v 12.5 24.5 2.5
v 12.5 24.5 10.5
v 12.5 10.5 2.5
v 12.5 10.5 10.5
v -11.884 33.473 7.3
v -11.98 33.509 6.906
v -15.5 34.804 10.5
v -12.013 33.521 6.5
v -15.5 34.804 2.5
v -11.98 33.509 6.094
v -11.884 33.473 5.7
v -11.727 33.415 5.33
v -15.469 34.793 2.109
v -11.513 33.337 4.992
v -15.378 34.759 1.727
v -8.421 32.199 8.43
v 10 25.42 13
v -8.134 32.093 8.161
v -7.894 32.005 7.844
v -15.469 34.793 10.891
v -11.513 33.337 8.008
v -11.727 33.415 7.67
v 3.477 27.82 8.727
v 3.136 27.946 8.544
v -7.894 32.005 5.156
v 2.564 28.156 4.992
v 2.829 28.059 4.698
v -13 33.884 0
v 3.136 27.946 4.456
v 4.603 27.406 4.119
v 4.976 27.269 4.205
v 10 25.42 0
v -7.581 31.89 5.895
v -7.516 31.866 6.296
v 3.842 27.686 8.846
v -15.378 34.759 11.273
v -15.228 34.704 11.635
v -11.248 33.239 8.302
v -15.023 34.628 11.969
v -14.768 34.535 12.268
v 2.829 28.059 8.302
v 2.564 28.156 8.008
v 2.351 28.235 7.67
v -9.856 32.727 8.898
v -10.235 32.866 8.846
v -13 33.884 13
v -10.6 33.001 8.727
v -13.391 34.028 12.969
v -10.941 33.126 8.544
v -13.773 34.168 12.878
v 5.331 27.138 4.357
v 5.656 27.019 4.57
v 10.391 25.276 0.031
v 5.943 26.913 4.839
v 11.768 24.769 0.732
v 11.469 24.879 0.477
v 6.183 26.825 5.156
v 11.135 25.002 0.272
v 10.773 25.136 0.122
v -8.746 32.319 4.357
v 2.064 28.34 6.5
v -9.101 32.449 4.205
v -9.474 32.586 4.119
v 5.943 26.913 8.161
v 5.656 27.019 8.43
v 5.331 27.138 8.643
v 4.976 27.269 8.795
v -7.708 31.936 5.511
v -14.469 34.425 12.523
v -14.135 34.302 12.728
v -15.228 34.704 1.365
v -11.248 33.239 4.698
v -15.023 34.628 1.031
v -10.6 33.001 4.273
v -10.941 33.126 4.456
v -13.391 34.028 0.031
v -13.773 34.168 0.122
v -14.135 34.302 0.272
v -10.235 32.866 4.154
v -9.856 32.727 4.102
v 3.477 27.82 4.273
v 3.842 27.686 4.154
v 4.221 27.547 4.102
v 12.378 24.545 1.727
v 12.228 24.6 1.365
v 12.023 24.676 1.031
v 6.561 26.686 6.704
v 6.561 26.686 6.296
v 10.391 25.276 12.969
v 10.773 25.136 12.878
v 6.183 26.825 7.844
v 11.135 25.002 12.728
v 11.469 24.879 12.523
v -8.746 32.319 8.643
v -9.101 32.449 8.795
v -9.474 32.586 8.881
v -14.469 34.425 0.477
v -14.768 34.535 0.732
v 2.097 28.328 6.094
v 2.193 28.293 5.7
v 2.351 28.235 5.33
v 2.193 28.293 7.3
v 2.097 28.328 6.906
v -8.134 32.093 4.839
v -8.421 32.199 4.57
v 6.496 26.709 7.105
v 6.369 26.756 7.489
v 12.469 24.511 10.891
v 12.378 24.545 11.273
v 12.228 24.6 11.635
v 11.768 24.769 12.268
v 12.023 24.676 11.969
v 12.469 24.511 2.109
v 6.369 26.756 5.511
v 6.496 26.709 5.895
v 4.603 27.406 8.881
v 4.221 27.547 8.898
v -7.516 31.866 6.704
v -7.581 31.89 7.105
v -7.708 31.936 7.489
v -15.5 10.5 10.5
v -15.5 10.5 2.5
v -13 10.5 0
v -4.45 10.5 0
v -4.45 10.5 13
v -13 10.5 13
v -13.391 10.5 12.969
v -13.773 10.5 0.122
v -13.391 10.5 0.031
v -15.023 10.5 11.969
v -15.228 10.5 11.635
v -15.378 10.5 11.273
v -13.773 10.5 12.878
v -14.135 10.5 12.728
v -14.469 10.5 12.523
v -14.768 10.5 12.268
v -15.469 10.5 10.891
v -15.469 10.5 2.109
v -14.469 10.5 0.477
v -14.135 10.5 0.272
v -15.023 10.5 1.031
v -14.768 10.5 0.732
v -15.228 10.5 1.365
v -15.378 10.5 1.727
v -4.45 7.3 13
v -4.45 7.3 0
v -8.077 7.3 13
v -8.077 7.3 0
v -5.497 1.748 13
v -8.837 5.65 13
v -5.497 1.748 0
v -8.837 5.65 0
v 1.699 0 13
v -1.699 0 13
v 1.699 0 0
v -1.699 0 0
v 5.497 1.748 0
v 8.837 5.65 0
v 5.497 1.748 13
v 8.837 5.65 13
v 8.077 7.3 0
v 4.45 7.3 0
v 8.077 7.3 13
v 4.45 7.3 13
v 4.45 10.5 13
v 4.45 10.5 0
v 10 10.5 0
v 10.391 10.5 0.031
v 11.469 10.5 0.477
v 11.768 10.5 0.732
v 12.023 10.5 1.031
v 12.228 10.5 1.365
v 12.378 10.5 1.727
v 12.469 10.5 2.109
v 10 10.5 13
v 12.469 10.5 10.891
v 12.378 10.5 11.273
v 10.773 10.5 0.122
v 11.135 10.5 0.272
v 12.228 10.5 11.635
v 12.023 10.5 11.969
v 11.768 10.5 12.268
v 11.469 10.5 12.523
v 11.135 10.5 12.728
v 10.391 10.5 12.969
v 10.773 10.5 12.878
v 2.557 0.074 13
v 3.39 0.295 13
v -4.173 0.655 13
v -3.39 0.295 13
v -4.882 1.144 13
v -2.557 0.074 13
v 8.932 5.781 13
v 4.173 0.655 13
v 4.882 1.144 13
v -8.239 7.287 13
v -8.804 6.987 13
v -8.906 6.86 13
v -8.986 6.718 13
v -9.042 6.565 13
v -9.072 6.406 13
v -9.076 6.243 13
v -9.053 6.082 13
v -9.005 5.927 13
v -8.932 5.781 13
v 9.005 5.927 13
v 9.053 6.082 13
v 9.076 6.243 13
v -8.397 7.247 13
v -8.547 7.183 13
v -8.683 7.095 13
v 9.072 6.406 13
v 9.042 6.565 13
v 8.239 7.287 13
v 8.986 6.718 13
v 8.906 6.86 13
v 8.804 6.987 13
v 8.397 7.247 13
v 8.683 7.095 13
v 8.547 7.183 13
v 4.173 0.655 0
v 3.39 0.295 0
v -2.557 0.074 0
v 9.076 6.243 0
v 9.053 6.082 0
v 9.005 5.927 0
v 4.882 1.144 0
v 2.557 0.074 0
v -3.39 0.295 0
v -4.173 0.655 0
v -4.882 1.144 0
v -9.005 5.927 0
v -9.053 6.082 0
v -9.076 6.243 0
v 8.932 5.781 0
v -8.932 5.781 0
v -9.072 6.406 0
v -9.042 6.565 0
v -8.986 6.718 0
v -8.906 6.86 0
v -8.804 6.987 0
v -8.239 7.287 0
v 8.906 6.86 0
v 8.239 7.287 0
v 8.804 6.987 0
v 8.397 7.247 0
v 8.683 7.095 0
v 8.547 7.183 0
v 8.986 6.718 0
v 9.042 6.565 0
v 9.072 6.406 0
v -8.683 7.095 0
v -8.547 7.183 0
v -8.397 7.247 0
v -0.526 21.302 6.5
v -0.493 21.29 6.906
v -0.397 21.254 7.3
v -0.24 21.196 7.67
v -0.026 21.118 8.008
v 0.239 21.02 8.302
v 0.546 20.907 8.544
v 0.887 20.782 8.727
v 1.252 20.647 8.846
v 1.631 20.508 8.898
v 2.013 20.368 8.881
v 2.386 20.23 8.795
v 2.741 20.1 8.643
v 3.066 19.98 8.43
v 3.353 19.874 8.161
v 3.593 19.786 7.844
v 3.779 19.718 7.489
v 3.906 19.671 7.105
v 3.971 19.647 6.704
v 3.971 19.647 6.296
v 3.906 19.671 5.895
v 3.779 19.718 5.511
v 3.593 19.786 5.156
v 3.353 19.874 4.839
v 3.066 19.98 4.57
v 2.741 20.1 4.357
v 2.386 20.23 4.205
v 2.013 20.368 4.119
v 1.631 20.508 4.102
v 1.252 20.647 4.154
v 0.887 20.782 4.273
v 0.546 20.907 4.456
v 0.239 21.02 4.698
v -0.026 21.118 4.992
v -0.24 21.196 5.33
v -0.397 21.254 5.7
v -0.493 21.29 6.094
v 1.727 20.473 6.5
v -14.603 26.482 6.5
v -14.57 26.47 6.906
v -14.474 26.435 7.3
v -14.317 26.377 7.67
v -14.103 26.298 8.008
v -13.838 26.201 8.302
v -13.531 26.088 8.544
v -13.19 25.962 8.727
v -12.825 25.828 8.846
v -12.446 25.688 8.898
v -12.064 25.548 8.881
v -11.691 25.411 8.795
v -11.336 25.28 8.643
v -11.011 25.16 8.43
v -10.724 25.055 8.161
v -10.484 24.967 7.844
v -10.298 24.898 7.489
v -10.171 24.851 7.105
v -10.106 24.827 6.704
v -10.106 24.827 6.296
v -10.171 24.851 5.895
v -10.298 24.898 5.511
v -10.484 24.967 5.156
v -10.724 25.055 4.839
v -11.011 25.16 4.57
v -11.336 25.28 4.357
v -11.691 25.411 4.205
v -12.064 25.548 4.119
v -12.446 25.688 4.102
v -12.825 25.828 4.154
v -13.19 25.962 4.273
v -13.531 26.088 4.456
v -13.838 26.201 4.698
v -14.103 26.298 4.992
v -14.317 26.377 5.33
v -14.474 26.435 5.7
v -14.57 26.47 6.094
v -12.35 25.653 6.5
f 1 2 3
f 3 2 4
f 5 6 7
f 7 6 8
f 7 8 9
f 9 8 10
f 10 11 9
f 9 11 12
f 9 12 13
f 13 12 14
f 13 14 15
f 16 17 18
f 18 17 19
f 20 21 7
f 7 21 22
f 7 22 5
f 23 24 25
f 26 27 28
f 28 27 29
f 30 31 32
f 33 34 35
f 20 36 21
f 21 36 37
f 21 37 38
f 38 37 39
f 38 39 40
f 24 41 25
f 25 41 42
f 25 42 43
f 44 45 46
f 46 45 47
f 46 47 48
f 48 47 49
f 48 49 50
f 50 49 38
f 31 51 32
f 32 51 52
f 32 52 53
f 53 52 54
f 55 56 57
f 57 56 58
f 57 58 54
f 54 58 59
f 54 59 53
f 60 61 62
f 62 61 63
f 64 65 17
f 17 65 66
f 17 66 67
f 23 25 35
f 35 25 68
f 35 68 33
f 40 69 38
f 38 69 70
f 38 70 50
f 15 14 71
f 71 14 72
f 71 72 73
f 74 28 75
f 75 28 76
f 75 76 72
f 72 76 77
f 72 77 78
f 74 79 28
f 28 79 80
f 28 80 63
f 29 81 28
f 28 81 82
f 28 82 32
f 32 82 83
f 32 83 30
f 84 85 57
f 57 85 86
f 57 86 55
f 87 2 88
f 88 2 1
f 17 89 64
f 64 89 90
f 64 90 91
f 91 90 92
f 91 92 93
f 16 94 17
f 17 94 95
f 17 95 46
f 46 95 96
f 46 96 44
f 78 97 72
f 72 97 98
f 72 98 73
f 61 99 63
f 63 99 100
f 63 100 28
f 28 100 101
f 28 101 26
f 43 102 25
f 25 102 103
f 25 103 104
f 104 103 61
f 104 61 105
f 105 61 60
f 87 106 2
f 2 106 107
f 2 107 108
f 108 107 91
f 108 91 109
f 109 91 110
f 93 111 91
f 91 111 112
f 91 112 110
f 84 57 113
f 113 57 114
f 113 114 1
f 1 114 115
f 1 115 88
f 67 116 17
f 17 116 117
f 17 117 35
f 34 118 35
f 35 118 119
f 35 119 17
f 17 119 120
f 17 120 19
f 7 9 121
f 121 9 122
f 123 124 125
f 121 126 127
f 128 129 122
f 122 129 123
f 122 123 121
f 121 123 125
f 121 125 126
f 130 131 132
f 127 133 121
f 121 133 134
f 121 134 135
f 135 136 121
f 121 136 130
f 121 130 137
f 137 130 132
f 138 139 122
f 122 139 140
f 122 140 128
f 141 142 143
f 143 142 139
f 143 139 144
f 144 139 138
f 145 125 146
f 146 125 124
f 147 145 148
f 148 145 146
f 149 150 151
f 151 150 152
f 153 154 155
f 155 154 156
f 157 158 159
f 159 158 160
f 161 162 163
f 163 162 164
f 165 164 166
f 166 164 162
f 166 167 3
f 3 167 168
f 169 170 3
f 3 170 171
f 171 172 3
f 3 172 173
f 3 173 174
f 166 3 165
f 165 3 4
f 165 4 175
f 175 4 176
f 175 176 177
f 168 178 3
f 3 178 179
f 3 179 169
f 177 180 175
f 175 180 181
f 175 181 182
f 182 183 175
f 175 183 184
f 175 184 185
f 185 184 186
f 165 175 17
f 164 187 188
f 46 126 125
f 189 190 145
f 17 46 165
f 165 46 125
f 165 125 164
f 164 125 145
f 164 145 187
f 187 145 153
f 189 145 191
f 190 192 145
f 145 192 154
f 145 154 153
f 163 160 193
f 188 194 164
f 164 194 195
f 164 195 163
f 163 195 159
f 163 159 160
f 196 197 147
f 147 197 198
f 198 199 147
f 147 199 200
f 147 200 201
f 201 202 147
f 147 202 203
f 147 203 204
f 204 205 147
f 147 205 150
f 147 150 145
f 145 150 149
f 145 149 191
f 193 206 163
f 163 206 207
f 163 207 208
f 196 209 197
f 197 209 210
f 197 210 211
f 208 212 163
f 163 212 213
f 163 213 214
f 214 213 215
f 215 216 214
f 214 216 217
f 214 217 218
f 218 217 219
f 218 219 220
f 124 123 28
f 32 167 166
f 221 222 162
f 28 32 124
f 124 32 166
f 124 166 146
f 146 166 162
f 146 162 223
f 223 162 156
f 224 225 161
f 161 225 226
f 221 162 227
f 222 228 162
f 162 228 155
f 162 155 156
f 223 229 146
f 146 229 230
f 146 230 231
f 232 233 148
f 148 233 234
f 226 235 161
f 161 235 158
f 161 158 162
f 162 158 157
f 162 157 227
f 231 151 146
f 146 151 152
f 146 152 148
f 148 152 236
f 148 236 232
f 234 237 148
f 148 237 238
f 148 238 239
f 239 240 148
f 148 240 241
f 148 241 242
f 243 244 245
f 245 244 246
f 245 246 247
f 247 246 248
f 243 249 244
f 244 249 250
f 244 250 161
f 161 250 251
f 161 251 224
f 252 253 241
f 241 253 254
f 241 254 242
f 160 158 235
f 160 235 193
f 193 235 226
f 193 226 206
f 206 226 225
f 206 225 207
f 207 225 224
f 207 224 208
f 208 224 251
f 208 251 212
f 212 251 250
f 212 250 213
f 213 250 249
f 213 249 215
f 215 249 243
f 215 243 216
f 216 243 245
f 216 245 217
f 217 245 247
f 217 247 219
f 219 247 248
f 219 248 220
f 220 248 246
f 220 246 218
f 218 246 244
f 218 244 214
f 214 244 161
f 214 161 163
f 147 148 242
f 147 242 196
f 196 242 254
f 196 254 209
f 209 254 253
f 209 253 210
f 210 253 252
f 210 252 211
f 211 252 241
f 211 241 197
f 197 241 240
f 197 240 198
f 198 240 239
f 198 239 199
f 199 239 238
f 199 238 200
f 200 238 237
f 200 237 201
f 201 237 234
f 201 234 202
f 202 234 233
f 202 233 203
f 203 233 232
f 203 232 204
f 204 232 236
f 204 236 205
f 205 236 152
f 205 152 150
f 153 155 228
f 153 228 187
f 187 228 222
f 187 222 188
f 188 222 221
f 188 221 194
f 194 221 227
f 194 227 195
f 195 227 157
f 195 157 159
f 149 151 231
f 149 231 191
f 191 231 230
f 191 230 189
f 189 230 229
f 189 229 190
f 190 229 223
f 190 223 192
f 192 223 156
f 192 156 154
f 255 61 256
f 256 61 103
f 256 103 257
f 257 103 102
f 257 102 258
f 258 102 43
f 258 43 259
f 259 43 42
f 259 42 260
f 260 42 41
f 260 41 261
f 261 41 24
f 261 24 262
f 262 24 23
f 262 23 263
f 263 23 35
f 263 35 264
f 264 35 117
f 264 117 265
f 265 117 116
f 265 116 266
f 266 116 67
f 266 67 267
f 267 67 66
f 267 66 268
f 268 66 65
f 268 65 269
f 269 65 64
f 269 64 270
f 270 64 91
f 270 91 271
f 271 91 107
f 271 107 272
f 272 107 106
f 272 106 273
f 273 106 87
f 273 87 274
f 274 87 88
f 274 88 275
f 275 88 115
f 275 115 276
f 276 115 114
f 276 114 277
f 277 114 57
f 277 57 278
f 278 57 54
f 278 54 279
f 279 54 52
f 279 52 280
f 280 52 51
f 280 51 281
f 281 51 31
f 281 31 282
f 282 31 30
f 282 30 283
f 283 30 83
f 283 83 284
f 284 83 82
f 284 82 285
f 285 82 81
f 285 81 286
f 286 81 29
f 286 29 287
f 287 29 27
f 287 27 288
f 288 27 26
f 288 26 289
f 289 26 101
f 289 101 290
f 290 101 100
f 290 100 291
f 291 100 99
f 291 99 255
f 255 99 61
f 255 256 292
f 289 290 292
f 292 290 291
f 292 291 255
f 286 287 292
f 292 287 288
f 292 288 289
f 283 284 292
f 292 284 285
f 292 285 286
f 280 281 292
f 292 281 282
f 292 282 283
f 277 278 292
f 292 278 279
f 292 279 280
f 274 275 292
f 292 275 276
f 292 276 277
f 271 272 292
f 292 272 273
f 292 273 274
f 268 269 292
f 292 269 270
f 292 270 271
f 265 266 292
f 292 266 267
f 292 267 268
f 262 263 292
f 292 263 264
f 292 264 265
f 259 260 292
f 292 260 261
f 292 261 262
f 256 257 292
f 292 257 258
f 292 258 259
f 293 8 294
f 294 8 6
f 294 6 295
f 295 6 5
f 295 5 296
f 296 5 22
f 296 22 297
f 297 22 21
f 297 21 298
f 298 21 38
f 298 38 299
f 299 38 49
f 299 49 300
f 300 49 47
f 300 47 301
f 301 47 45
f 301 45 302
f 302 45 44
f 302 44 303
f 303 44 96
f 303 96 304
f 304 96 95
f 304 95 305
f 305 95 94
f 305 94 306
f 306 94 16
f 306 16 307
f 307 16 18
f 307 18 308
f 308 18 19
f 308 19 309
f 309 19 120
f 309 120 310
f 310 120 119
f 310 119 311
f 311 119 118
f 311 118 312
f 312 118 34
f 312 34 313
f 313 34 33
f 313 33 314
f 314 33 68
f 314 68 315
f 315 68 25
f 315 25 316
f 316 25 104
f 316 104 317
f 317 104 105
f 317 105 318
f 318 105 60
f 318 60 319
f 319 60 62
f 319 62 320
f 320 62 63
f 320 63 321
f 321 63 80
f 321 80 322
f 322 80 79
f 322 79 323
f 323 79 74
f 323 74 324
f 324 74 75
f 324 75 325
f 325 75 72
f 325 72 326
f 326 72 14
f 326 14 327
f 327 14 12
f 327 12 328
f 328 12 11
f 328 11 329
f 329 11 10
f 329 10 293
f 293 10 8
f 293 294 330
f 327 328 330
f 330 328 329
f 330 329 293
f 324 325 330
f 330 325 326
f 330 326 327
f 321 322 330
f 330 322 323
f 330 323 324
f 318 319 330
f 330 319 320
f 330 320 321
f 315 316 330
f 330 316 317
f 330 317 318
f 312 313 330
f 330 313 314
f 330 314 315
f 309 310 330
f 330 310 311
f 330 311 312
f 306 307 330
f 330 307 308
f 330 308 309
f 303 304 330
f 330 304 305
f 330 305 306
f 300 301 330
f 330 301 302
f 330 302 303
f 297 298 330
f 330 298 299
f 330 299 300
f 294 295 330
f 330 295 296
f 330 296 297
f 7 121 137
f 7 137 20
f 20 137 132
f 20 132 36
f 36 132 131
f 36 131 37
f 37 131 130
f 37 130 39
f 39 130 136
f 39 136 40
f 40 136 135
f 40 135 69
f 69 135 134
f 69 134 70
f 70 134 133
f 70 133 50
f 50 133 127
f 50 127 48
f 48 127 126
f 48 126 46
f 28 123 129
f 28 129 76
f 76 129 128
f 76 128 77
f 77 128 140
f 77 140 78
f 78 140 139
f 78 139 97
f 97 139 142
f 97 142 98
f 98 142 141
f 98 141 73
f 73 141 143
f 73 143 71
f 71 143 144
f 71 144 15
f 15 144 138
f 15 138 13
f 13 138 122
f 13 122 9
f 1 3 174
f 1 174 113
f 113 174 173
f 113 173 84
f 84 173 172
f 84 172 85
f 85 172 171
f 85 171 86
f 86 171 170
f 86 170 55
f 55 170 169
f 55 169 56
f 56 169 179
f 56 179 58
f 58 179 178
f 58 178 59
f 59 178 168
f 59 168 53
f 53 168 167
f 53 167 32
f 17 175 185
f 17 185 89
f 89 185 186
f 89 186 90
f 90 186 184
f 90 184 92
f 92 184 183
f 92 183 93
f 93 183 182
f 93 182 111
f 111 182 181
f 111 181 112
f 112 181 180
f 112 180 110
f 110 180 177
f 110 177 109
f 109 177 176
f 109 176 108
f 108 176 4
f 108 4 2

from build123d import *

# Parameters (mm, degrees)
BOSS_EXTRUDE3_DEPTH = 13
FILLET1_R           = 1
FILLET2_R           = 5
SKETCH2_R           = 2.4
CUT_EXTRUDE1_DEPTH  = 7.5
FILLET3_R           = 2.5


with BuildPart() as part:
    # Sketch1 → Boss-Extrude3 (new body)
    with BuildSketch(Plane.XY):
        Polygon((-12.5, 10.5), (-4.45, 10.5), (4.45, 10.5), (12.5, 10.5), (12.5, 24.5), (-12.5, 33.7), align=None)
        Polygon((-4.45, 7.3), (-10.25, 7.3), (-4, 0), (4, 0), (10.25, 7.3), (4.45, 7.3), (4.45, 10.5), (-4.45, 10.5), align=None)
        Polygon((-15.5, 34.804), (-12.5, 33.7), (-12.5, 10.5), (-15.5, 10.5), align=None)
    extrude(amount=BOSS_EXTRUDE3_DEPTH)

    # Fillet1
    fillet1_edges = [part.edges().sort_by_distance(p)[0] for p in [
        (10.25, 7.3, 6.5),
        (-10.25, 7.3, 6.5),
    ]]
    fillet(fillet1_edges, radius=FILLET1_R)

    # Fillet2
    fillet2_edges = [part.edges().sort_by_distance(p)[0] for p in [
        (4, 0, 6.5),
        (-4, 0, 6.5),
    ]]
    fillet(fillet2_edges, radius=FILLET2_R)

    # Sketch2 → Cut-Extrude1 (cut)
    with BuildSketch(Plane(origin=(9.431542754, 25.629192267, 0), x_dir=(0.9384712337524266, -0.3453574140208928, 0), z_dir=(0.3453574140208928, 0.9384712337524266, 0))):
        with Locations(Location((-20.450055857, -6.5, 0), (0, 0, 180))):
            Circle(SKETCH2_R)
        with Locations(Location((-5.450055857, -6.5, 0), (0, 0, 180))):
            Circle(SKETCH2_R)
    extrude(amount=-CUT_EXTRUDE1_DEPTH, mode=Mode.SUBTRACT)

    # Fillet3
    fillet3_edges = [part.edges().sort_by_distance(p)[0] for p in [
        (-15.5, 22.652, 13),
        (-15.5, 22.652, 0),
        (12.5, 17.5, 0),
        (12.5, 17.5, 13),
    ]]
    fillet(fillet3_edges, radius=FILLET3_R)


solid = part.part
